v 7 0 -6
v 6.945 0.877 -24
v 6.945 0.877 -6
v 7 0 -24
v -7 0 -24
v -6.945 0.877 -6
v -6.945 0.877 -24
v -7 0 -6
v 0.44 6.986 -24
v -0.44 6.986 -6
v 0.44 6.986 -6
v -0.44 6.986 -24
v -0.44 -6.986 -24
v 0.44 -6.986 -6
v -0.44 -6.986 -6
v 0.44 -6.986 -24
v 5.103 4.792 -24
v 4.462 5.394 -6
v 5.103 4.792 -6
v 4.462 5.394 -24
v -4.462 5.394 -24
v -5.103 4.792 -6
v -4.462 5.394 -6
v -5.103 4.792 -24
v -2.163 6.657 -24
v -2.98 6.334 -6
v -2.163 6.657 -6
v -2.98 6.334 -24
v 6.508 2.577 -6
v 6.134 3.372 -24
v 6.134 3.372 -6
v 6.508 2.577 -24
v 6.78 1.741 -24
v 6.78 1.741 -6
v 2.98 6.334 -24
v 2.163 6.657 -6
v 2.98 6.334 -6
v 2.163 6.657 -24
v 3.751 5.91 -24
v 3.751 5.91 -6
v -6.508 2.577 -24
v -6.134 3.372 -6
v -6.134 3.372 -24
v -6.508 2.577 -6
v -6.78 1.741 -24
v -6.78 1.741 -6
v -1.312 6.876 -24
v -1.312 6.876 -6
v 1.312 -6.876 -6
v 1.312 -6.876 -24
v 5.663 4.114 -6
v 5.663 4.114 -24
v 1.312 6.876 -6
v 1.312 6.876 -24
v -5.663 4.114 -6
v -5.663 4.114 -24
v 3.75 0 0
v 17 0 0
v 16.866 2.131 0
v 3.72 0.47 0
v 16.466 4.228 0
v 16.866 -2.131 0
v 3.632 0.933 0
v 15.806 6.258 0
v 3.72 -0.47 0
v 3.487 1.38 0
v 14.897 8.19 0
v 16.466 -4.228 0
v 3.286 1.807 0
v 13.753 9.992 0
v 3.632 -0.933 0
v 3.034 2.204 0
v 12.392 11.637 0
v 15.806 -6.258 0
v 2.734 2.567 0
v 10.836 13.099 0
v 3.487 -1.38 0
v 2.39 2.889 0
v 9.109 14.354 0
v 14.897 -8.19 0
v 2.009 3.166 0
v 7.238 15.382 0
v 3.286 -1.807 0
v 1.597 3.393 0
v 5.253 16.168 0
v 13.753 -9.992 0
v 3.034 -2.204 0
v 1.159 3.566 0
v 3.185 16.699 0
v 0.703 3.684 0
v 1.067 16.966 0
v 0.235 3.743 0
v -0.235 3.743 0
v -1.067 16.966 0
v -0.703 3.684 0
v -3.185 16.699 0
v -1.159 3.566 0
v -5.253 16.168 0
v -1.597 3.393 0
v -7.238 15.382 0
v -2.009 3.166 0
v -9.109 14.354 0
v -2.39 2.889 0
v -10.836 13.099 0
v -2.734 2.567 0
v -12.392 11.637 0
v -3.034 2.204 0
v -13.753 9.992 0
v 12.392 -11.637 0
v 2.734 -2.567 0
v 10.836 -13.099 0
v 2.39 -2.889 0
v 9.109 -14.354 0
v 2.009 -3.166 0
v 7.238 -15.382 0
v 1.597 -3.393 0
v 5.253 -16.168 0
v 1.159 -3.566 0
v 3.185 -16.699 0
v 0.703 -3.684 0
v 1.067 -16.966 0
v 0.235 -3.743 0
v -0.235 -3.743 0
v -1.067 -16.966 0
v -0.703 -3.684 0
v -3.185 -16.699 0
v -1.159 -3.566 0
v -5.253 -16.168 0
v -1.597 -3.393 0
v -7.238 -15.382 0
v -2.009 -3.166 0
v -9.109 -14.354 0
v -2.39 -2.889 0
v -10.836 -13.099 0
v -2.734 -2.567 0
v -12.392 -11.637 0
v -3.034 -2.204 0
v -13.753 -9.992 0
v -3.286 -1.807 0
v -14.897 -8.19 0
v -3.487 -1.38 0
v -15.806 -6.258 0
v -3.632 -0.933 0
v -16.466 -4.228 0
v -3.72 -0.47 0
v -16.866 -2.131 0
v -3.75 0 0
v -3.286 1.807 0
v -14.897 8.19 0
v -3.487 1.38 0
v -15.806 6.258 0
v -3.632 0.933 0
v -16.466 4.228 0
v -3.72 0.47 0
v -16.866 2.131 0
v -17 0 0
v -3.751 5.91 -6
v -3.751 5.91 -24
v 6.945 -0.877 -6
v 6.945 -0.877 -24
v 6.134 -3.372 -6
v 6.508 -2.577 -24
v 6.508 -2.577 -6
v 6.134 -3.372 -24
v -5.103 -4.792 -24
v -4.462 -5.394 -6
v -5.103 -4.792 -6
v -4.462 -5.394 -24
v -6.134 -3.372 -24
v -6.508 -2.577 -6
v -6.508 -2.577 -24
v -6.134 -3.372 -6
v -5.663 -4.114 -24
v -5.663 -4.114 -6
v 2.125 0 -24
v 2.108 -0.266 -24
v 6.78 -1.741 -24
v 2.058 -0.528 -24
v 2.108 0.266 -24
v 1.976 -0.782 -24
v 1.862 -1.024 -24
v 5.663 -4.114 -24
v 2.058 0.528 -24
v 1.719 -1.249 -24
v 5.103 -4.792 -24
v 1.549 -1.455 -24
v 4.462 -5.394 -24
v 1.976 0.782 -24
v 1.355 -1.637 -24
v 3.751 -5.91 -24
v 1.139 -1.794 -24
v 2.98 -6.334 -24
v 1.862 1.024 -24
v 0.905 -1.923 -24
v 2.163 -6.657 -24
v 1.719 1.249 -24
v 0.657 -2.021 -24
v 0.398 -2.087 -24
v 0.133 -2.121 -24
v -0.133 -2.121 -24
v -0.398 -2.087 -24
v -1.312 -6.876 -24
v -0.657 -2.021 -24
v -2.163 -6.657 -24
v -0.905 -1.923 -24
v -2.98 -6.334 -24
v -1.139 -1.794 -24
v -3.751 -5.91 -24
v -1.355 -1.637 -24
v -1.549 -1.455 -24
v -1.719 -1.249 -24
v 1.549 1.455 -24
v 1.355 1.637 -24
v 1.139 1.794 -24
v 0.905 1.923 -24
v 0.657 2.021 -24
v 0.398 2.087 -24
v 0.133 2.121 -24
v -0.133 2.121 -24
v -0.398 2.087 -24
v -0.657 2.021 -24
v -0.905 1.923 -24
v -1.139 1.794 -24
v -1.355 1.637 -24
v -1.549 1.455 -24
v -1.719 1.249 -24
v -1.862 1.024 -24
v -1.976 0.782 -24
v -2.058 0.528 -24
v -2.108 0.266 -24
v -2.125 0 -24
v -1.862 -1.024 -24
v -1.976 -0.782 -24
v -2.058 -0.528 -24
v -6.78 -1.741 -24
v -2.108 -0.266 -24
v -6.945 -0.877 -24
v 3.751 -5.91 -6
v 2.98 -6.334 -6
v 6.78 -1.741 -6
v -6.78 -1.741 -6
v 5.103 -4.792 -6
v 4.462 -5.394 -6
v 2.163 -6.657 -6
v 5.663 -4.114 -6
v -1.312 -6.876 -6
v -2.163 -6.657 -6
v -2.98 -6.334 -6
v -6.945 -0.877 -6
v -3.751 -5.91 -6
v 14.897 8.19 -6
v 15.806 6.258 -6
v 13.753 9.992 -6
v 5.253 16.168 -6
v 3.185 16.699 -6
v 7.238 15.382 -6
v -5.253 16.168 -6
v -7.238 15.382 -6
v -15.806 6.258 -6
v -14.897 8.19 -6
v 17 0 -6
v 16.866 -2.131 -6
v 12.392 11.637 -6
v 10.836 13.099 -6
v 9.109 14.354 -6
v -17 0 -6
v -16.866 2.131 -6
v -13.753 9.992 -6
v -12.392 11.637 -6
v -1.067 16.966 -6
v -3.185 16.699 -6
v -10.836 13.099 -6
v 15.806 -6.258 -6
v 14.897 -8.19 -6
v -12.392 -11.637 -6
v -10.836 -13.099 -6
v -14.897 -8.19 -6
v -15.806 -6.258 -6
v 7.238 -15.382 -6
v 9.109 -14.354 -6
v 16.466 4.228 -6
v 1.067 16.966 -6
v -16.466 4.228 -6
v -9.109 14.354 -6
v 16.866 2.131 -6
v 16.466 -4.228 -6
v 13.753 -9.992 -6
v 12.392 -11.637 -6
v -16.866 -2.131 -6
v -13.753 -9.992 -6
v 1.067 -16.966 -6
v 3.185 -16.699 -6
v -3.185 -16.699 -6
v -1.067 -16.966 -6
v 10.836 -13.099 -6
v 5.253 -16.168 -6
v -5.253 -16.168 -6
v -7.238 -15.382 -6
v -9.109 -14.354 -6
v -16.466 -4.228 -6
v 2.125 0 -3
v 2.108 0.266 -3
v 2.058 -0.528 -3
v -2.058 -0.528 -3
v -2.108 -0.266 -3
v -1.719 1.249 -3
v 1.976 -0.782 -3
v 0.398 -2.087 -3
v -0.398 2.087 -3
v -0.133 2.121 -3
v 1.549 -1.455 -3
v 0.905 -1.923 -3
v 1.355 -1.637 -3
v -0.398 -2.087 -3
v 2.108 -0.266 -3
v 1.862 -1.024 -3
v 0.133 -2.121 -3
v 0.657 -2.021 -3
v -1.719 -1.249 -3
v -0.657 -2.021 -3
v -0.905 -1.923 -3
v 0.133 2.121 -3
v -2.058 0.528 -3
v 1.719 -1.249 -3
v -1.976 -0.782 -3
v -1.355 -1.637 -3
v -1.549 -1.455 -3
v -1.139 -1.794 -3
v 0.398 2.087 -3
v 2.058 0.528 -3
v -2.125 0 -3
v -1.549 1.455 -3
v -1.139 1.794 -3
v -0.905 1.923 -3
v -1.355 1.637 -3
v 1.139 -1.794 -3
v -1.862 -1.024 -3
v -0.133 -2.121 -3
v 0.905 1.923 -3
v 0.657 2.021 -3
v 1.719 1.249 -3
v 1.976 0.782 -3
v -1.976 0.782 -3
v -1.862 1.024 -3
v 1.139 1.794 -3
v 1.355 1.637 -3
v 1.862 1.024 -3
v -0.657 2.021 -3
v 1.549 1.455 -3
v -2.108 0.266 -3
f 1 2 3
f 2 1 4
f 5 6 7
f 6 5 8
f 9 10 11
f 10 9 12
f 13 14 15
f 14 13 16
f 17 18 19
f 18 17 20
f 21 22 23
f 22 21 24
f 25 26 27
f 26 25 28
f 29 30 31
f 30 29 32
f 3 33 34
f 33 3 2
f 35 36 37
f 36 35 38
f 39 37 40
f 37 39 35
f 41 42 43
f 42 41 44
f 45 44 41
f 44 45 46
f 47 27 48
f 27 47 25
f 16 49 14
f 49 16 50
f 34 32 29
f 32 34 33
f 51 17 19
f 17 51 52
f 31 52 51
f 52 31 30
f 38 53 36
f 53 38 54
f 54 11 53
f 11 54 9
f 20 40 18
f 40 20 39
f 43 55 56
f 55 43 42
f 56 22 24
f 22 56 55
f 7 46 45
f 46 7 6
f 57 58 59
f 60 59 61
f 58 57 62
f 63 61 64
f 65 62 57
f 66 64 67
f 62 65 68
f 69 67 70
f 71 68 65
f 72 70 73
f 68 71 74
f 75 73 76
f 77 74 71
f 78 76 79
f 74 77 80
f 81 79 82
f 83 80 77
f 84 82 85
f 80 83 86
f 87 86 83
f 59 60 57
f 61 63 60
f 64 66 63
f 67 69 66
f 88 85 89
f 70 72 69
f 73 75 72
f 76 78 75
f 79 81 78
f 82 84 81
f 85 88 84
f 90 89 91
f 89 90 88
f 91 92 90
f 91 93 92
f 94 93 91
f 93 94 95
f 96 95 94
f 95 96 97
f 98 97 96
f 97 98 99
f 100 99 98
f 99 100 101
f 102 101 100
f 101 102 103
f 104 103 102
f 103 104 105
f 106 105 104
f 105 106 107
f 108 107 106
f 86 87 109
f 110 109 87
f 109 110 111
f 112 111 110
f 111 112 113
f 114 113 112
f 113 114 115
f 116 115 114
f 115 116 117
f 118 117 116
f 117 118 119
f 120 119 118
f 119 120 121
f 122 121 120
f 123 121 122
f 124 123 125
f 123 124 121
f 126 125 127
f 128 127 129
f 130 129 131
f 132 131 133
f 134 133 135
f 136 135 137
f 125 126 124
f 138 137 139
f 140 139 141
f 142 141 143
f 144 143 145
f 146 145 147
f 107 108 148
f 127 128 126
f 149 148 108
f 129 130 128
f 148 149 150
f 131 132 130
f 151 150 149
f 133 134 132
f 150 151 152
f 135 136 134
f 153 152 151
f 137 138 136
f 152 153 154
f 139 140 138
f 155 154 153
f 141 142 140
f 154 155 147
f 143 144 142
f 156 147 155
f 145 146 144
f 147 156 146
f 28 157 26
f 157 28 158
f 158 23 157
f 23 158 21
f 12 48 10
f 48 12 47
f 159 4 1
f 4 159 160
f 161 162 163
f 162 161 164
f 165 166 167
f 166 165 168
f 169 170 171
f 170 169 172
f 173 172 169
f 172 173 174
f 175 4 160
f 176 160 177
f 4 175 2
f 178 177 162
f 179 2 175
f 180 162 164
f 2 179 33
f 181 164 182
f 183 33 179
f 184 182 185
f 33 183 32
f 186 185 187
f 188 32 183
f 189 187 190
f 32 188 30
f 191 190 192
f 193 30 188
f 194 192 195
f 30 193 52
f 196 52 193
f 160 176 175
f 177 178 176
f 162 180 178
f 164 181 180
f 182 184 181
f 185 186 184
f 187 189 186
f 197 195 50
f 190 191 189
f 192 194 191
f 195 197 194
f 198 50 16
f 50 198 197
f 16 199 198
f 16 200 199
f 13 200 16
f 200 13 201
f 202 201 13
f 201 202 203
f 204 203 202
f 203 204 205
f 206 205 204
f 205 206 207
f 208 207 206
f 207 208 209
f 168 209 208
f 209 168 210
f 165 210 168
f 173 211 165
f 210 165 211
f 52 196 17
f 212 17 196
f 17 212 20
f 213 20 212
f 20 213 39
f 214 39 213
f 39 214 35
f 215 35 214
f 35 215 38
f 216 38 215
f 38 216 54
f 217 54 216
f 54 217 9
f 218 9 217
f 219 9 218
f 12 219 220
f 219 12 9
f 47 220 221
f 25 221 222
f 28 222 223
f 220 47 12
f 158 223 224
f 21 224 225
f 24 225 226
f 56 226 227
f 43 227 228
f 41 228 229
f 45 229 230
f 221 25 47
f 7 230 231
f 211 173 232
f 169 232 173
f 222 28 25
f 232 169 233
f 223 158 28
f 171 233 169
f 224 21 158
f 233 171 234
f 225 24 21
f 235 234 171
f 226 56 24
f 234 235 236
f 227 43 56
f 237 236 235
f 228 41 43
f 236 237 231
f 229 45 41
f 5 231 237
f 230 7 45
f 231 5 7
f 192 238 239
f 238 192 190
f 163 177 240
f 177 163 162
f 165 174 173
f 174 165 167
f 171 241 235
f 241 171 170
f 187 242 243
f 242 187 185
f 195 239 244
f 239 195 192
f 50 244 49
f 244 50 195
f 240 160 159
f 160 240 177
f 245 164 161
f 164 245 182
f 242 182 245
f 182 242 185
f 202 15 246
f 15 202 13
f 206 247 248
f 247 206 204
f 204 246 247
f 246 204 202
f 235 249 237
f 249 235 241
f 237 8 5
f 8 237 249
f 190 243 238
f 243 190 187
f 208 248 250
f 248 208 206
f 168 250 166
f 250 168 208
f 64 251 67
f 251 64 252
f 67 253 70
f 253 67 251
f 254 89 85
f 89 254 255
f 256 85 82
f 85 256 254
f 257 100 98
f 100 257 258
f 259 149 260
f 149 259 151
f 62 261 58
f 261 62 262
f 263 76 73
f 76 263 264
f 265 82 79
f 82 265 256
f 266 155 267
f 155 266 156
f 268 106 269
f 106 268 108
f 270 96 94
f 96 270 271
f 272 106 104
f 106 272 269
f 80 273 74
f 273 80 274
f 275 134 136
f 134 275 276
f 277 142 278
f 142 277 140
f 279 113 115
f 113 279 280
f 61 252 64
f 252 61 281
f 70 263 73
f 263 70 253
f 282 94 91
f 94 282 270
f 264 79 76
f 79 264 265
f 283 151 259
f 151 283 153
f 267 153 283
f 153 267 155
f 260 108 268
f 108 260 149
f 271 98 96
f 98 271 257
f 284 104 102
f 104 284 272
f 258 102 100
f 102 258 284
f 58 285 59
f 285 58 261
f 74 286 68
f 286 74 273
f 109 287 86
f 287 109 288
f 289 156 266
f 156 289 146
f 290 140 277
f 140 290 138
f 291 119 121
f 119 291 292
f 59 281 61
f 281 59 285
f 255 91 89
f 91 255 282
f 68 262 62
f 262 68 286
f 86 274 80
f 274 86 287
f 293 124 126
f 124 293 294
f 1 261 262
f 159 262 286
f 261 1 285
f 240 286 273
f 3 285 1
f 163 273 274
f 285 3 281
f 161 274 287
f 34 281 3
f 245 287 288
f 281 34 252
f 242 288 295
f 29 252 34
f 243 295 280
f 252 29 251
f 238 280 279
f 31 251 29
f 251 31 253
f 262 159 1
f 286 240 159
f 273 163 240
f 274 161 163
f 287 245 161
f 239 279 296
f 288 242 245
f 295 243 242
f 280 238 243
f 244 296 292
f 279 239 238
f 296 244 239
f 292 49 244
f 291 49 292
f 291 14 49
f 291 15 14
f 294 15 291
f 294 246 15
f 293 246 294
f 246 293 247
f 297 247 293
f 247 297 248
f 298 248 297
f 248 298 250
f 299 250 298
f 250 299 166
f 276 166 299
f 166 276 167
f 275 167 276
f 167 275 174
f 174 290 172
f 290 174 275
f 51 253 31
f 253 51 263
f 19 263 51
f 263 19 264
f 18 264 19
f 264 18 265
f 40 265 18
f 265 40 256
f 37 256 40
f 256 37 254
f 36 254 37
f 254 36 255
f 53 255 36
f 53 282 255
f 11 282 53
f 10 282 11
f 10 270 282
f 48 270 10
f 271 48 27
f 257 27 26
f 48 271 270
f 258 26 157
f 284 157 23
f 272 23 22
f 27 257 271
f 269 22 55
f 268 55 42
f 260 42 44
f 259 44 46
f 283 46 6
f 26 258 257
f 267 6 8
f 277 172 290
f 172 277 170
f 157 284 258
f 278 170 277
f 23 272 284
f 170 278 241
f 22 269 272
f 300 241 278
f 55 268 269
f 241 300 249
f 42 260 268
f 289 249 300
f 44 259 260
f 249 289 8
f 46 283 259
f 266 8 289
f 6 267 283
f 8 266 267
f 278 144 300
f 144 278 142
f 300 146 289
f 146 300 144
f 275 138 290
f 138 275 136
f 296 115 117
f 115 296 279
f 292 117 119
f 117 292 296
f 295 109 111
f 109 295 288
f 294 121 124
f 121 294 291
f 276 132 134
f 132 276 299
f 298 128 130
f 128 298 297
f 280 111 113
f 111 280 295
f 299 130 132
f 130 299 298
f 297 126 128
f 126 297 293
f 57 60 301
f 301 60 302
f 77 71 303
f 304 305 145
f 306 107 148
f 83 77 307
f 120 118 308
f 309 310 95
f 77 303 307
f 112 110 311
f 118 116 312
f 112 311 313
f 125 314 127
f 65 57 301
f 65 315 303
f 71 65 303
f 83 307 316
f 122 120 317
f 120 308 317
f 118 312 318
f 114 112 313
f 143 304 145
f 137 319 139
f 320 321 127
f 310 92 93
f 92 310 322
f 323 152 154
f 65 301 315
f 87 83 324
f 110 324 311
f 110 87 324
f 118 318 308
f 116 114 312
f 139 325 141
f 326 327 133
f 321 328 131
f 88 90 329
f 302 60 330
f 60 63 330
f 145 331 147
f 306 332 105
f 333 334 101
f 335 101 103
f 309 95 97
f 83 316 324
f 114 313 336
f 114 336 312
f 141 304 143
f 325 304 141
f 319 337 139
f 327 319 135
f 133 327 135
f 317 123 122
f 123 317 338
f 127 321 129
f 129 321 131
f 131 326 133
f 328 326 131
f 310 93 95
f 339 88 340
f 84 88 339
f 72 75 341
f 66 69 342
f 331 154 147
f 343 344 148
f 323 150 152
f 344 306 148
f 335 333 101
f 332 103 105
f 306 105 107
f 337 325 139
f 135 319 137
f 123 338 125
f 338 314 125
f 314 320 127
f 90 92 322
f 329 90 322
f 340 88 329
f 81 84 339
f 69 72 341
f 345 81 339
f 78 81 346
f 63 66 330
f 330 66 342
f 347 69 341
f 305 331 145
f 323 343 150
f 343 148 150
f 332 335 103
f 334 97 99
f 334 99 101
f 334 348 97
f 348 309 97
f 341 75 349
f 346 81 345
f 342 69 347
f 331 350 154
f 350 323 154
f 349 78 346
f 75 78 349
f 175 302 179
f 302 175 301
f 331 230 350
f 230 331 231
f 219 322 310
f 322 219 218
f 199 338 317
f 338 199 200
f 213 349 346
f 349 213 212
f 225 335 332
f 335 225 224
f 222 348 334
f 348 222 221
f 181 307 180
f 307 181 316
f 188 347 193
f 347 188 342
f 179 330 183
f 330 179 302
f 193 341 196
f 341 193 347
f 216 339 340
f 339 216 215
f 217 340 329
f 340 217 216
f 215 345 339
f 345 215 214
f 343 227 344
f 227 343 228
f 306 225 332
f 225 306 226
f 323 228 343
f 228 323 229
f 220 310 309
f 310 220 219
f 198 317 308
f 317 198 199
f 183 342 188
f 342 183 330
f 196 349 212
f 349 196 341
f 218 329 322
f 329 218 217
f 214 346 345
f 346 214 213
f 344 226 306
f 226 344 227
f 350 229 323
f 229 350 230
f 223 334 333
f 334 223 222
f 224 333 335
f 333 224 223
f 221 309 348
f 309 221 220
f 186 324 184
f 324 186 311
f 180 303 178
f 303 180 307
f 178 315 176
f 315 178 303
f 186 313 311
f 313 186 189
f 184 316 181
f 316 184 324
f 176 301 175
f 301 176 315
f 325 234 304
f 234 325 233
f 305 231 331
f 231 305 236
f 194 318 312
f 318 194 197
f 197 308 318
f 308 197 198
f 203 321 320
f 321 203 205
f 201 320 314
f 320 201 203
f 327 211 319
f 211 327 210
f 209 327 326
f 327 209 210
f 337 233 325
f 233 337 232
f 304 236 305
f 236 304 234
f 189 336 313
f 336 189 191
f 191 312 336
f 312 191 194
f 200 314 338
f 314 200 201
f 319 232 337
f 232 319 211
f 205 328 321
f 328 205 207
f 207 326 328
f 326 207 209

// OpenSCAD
$fn = 50;


difference() {
	union() {
		translate(v = [0, 0, -24.0000000000]) {
			cylinder(h = 24, r = 7.0000000000);
		}
		translate(v = [0, 0, -6.0000000000]) {
			cylinder(h = 6, r = 17.0000000000);
		}
	}
	union() {
		translate(v = [0, 0, 0]) {
			rotate(a = [0, 0, 0]) {
				difference() {
					union() {
						#translate(v = [0, 0, -24.0000000000]) {
							cylinder(h = 24, r = 2.0000000000);
						}
						#translate(v = [0, 0, -3]) {
							cylinder(h = 3, r = 7.0000000000, r1 = 2.1250000000, r2 = 3.7500000000);
						}
						#translate(v = [0, 0, -24.0000000000]) {
							cylinder(h = 24, r = 2.1250000000);
						}
						#translate(v = [0, 0, -24.0000000000]) {
							cylinder(h = 24, r = 2.0000000000);
						}
					}
					union();
				}
			}
		}
	}
}
